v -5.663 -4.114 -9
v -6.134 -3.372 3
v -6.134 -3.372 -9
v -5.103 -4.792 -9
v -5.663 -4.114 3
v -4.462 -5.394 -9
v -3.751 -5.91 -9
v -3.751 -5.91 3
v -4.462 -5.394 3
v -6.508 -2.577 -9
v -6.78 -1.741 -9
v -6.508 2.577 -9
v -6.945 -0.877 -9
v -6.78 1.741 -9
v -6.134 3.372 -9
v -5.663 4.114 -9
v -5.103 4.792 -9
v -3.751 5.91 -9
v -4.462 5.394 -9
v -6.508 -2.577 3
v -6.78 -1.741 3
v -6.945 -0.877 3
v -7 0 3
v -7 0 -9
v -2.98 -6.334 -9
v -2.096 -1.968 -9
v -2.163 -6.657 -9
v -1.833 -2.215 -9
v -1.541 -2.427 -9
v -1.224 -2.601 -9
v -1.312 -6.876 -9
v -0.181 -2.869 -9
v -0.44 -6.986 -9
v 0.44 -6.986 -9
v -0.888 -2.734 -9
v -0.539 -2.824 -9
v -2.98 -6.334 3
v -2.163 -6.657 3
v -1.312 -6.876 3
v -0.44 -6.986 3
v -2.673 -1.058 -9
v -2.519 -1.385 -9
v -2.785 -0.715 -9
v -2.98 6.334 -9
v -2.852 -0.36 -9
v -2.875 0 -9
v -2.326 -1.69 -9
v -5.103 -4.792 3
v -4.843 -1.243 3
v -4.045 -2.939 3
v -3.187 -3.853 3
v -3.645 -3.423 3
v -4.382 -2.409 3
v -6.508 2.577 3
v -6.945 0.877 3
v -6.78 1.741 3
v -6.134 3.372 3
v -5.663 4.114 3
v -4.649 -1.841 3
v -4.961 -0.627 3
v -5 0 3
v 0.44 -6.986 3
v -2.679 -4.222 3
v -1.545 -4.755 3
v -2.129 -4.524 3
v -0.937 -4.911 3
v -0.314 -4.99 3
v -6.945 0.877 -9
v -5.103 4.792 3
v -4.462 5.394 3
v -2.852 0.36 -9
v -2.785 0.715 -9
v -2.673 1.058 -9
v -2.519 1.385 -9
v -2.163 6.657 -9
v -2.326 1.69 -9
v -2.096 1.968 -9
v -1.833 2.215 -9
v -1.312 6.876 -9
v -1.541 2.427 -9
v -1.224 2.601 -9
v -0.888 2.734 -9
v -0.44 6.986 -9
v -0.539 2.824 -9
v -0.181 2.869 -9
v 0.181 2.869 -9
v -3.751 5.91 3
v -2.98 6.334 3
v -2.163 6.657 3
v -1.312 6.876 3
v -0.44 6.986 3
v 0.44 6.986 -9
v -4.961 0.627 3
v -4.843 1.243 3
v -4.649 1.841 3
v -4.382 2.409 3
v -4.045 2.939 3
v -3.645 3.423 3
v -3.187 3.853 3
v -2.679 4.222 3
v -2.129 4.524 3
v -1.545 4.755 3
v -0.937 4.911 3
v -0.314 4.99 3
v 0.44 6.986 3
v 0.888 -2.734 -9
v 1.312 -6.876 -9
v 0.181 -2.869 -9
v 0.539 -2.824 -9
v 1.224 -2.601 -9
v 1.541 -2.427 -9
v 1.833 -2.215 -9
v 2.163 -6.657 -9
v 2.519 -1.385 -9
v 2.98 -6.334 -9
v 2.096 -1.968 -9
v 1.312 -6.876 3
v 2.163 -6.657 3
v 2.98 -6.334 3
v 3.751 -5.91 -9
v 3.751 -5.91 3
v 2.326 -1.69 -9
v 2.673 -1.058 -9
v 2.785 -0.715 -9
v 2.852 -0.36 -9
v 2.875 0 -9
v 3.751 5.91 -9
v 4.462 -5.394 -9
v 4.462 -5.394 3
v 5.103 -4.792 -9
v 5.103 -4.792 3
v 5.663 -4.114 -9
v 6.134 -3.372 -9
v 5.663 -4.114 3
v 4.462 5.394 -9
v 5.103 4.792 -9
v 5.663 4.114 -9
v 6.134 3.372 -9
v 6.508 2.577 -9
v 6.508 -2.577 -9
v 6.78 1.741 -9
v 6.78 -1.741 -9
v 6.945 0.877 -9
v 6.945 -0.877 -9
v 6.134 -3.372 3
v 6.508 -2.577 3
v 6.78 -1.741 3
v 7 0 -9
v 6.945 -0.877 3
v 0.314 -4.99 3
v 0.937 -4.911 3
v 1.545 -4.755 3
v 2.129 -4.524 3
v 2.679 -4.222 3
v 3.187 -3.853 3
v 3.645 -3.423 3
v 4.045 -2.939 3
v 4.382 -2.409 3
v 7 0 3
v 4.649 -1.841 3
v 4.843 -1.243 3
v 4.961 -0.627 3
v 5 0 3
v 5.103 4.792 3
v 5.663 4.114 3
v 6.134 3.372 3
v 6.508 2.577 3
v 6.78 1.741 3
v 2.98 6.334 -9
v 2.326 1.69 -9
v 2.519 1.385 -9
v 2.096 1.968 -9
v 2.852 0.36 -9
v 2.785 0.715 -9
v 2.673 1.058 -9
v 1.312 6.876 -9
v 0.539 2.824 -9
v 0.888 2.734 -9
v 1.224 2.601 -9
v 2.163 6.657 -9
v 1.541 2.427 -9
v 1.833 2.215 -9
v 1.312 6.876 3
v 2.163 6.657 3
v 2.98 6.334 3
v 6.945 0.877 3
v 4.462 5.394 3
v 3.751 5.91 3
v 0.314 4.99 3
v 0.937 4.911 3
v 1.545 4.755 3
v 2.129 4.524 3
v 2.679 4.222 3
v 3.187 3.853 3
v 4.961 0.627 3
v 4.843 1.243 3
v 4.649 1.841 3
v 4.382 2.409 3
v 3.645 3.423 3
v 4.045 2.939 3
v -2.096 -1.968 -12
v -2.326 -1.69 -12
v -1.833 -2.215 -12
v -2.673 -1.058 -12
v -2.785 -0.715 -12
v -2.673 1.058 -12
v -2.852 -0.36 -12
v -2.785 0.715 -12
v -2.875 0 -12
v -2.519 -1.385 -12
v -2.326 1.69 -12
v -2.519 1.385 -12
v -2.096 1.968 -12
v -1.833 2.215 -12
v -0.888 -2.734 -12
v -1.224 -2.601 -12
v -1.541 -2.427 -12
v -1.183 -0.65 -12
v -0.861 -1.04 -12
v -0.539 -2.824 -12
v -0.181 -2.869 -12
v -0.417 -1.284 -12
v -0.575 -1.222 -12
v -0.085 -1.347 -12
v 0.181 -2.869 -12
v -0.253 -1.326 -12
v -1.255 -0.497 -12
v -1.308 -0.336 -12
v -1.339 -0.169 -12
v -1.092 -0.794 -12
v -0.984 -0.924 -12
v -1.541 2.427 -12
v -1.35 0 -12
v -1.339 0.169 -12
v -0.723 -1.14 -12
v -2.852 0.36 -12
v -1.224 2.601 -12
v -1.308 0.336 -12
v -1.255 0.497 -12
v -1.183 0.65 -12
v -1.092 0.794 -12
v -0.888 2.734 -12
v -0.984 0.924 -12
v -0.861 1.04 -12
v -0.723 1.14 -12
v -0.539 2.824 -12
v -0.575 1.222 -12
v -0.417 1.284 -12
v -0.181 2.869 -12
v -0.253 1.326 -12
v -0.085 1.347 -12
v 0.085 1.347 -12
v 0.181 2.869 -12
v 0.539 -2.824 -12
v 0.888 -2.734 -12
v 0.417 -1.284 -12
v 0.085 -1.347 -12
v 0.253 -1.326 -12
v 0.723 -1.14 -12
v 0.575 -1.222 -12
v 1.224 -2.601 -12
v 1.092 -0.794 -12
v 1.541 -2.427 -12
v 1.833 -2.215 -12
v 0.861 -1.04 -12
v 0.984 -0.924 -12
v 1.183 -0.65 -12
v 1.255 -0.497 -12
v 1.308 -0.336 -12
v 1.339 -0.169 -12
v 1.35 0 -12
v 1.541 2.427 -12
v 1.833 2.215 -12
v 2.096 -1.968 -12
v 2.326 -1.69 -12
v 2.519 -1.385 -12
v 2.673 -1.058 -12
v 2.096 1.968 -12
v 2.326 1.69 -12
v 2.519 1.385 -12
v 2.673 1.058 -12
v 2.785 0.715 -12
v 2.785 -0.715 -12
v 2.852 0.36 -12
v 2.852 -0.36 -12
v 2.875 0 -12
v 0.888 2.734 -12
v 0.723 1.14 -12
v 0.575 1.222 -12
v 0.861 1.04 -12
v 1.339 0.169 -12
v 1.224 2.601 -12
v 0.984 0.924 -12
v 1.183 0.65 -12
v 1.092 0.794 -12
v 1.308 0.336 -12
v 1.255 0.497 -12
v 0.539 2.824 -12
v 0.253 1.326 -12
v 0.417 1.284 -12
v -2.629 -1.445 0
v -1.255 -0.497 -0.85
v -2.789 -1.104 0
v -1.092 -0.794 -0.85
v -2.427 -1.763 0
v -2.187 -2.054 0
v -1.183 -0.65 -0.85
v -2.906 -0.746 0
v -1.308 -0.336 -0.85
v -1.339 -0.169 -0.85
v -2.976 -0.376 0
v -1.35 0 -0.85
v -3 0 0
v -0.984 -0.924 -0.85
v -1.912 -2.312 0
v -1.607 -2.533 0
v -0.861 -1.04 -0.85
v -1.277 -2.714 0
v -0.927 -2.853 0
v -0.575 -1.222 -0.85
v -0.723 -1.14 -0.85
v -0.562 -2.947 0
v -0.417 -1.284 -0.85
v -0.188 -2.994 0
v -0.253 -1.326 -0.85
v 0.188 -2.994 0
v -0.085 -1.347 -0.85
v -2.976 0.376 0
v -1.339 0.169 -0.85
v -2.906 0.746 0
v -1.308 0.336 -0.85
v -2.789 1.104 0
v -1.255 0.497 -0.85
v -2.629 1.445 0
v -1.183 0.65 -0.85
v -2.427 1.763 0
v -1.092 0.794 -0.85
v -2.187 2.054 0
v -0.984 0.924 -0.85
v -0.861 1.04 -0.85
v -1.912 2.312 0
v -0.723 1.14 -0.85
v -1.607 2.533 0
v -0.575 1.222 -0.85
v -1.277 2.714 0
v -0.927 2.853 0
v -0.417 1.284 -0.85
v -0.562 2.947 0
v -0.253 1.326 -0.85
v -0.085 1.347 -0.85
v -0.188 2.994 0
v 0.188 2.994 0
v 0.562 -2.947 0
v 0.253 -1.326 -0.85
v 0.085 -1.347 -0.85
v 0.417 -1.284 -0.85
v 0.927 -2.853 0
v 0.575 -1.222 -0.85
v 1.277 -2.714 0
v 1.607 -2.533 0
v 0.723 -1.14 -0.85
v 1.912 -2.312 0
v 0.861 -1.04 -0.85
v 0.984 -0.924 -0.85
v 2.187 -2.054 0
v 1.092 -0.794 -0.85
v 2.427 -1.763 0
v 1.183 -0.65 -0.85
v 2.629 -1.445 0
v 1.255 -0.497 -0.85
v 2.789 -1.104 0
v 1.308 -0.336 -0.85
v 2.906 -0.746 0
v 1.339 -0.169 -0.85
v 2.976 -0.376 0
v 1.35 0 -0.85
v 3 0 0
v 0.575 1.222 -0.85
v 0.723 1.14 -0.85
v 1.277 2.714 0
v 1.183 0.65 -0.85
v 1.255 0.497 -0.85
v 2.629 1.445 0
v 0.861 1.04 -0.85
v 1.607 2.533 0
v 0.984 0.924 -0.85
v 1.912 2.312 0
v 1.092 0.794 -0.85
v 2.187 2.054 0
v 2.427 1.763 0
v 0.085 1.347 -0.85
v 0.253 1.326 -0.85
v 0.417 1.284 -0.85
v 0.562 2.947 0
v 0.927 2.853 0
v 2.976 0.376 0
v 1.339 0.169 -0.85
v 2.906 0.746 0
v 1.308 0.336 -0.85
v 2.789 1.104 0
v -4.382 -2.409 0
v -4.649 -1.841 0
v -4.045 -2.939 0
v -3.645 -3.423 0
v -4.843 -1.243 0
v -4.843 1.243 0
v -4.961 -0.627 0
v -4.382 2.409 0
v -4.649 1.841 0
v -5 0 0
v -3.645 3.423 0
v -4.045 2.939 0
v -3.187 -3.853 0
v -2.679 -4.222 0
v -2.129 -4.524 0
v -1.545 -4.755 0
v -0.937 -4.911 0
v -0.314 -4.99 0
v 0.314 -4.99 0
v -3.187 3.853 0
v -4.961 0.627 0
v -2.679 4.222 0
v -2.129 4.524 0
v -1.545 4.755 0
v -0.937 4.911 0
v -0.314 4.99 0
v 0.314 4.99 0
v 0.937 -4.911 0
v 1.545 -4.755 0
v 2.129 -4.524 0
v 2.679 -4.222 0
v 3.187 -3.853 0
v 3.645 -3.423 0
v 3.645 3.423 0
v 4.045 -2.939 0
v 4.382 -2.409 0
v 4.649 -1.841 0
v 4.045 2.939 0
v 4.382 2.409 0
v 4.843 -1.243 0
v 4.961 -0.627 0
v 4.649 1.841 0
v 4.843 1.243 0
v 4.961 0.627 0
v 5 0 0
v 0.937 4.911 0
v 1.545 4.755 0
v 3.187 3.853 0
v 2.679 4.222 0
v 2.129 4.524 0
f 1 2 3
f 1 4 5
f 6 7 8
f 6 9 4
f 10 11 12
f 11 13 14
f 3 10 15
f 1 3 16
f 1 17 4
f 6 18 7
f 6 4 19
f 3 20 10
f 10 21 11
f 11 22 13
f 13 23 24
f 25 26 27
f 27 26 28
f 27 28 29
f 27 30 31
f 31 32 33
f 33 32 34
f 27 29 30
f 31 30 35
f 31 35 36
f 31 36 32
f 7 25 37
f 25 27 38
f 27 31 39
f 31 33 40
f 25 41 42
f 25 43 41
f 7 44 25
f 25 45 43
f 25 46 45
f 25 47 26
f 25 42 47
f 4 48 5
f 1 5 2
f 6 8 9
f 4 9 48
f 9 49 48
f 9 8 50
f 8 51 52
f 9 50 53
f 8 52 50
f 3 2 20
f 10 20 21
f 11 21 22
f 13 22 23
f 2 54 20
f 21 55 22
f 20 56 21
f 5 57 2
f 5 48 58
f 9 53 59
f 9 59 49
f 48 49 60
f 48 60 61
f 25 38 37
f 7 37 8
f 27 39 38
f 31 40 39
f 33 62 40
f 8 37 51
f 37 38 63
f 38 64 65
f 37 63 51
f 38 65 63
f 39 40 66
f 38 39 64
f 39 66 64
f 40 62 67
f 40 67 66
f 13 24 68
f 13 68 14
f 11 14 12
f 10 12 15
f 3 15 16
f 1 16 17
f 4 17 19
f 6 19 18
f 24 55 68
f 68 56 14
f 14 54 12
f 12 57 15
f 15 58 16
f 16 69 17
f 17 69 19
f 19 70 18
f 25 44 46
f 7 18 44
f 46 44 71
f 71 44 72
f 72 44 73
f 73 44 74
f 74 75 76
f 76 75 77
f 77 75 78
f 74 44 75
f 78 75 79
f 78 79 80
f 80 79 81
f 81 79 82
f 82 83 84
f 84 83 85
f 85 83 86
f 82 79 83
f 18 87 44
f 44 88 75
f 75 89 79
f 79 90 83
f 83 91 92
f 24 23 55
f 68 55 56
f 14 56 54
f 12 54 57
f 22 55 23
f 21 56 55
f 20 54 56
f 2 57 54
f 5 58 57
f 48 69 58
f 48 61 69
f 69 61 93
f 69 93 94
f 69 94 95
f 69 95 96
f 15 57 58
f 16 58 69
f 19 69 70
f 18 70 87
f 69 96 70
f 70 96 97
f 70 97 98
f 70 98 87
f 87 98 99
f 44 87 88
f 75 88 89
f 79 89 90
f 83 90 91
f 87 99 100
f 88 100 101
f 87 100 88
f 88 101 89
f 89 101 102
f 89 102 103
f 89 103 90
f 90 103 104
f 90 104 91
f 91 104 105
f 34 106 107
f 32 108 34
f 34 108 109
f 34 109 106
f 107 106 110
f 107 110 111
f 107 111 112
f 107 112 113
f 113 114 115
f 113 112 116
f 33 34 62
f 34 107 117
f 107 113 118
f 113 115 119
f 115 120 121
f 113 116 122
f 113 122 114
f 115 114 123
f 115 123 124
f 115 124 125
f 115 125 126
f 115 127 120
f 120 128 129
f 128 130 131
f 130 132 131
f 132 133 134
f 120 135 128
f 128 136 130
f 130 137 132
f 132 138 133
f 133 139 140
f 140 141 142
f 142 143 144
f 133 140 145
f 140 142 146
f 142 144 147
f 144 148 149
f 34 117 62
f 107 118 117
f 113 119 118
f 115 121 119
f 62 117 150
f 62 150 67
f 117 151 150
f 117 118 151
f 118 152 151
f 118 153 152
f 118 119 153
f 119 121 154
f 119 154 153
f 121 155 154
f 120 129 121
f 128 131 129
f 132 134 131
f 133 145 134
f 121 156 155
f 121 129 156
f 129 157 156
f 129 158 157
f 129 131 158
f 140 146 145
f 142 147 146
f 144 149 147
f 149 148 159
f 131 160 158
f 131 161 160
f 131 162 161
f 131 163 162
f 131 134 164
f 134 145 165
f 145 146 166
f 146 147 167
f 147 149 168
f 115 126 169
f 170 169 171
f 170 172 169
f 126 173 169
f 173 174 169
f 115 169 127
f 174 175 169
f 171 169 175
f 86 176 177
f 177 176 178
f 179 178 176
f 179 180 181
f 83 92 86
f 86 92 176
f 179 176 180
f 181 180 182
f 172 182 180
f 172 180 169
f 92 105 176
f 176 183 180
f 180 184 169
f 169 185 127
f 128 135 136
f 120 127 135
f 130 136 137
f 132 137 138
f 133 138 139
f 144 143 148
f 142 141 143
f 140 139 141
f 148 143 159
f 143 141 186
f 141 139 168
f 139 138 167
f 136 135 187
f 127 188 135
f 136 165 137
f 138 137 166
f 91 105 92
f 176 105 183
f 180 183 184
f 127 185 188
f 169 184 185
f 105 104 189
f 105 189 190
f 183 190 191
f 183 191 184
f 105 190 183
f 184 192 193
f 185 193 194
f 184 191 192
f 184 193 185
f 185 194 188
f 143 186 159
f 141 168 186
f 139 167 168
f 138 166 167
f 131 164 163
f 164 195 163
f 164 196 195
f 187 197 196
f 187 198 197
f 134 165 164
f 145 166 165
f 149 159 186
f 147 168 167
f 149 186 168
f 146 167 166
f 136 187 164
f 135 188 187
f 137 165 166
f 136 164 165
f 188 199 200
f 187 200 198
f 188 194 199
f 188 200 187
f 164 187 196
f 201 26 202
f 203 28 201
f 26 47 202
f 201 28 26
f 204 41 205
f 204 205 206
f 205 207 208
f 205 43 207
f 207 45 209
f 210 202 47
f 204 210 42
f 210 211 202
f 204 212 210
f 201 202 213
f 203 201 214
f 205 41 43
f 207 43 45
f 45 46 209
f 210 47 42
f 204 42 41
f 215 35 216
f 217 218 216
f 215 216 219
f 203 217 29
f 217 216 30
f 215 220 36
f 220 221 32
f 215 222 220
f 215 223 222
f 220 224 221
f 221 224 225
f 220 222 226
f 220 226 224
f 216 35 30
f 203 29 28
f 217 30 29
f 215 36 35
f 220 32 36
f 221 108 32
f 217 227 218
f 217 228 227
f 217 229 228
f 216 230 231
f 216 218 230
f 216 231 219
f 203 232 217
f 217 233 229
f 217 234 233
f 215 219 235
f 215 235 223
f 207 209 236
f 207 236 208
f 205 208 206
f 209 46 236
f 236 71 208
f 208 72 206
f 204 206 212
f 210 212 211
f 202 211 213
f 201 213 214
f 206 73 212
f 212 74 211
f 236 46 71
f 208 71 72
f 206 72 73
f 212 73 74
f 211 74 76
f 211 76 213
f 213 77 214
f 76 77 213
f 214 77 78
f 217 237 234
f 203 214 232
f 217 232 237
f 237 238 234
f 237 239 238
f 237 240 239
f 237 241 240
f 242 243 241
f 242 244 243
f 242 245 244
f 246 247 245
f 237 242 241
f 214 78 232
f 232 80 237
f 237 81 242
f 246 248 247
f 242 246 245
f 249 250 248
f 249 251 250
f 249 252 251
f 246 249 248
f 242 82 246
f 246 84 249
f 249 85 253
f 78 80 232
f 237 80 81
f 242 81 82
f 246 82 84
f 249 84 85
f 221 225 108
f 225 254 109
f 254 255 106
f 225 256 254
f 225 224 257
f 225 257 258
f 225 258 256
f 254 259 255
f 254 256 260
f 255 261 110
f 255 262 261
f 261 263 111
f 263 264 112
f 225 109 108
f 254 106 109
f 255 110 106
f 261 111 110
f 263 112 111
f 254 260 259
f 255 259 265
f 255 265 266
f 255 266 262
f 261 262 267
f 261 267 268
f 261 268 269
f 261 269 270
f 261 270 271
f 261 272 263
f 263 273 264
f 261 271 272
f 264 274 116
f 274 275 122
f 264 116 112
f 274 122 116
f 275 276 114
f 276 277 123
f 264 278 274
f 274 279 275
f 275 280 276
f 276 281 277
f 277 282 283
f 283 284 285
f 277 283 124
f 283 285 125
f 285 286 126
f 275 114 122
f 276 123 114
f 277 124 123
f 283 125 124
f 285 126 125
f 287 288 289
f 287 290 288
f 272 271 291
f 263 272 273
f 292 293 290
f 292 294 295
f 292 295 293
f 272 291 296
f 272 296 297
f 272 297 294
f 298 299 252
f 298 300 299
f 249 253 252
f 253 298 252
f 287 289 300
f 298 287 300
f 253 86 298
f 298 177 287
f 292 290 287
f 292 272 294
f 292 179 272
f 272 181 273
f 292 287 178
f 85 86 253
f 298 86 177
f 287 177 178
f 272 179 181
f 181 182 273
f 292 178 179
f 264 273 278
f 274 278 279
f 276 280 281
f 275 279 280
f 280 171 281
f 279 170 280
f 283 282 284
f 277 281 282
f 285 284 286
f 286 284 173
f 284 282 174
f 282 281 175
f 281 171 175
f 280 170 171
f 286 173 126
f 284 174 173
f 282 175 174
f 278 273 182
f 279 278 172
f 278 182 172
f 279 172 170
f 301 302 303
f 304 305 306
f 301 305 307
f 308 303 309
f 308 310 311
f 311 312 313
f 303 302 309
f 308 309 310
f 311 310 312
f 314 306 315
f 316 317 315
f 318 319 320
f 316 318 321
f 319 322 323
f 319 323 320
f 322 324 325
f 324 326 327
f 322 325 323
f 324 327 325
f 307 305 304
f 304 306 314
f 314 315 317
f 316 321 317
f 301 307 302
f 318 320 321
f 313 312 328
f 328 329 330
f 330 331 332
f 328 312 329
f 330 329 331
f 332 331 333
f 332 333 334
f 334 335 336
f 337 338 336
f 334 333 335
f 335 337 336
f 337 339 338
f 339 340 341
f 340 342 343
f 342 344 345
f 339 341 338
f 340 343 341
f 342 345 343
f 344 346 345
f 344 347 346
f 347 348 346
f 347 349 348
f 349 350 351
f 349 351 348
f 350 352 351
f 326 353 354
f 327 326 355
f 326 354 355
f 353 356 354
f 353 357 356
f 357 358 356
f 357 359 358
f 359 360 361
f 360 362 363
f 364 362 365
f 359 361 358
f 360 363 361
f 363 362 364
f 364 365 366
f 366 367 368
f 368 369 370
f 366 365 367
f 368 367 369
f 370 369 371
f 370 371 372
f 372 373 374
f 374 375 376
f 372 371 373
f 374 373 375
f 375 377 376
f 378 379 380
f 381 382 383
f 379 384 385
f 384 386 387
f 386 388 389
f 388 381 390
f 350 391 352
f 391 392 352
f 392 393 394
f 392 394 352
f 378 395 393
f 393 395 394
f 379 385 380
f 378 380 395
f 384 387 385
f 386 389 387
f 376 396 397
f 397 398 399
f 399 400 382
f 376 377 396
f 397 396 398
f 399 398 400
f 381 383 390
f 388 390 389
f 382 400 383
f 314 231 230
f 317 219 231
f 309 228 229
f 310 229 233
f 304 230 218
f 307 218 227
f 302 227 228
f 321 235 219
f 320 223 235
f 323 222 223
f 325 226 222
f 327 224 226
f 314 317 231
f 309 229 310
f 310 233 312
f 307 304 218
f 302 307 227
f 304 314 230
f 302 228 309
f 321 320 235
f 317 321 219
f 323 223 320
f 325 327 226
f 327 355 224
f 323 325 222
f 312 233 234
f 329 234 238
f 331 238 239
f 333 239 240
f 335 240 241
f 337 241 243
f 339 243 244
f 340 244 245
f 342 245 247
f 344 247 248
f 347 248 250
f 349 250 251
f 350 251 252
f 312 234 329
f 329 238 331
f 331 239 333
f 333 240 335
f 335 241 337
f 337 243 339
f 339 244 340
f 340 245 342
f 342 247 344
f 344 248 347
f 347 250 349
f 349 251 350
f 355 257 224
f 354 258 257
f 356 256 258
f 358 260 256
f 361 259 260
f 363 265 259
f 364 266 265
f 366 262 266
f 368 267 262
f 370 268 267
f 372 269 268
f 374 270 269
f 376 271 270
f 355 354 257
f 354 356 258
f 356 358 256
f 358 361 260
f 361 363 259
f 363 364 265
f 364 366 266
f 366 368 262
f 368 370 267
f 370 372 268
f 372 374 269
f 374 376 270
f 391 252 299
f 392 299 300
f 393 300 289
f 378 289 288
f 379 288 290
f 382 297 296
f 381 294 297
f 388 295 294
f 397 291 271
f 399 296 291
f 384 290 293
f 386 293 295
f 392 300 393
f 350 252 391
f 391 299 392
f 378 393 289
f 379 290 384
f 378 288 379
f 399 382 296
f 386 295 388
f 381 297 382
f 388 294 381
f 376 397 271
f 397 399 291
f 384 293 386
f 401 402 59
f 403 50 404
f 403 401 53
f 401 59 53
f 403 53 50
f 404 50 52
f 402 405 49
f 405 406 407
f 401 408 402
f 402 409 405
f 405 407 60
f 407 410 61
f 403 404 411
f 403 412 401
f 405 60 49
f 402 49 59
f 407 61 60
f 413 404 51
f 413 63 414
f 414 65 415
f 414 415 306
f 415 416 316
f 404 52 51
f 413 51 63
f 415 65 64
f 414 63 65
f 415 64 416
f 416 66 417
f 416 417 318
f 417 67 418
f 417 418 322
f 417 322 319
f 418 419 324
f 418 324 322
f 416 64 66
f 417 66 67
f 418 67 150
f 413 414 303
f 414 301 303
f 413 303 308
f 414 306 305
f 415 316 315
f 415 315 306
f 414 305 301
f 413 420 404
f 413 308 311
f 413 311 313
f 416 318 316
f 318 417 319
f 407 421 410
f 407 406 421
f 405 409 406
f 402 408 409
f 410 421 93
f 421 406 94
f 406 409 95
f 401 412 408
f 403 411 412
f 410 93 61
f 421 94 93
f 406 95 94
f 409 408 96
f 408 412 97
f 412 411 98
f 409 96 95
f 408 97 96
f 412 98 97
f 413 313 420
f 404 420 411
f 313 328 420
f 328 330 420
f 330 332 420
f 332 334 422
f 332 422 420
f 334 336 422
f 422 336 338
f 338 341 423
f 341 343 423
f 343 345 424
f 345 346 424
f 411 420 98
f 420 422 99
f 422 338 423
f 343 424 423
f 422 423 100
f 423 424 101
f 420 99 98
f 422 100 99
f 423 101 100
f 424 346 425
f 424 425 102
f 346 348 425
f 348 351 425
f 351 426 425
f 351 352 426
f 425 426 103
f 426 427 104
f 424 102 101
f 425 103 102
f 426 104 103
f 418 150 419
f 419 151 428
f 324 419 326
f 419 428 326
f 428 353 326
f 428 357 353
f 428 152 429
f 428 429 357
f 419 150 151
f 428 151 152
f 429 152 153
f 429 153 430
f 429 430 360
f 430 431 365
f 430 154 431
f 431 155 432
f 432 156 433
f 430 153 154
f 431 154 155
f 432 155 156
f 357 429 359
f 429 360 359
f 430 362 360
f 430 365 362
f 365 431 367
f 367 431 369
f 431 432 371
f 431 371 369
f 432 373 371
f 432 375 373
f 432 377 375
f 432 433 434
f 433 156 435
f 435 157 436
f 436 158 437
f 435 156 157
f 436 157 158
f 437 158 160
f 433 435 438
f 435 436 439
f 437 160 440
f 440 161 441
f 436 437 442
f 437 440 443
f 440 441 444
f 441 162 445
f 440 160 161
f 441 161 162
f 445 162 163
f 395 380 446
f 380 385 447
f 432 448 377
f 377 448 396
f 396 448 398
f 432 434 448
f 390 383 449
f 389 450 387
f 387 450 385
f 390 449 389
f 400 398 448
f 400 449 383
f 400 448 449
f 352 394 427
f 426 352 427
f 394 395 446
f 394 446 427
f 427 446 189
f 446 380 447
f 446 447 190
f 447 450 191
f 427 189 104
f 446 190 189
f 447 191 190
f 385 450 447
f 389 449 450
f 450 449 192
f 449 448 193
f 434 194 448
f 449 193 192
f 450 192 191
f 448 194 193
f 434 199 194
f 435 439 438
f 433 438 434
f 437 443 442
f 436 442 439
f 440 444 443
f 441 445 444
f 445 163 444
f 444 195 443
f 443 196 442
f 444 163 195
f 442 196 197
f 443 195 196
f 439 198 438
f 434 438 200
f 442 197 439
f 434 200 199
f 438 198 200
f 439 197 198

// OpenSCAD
$fn = 50;

difference() {
	union() {
		translate(v = [0, 0, -9.0]) {
			cylinder(h = 12, r = 7.0);
		}
		#translate(v = [0, 0, -12.0]) {
			cylinder(h = 12, r = 2.875);
		}
	}
	union() {
		translate(v = [0, 0, 0]) {
			rotate(a = [0, 0, 0]) {
				difference() {
					union() {
						translate(v = [0, 0, -12.0]) {
							cylinder(h = 12, r = 1.0);
						}
						translate(v = [0, 0, -0.85]) {
							cylinder(h = 0.85, r1 = 1.35, r2 = 3.0);
						}
						translate(v = [0, 0, -12.0]) {
							cylinder(h = 12, r = 1.35);
						}
						translate(v = [0, 0, -12.0]) {
							cylinder(h = 12, r = 1.0);
						}
					}
					union();
				}
			}
		}
		#cylinder(h = 3, r = 5.0);
	}
}
